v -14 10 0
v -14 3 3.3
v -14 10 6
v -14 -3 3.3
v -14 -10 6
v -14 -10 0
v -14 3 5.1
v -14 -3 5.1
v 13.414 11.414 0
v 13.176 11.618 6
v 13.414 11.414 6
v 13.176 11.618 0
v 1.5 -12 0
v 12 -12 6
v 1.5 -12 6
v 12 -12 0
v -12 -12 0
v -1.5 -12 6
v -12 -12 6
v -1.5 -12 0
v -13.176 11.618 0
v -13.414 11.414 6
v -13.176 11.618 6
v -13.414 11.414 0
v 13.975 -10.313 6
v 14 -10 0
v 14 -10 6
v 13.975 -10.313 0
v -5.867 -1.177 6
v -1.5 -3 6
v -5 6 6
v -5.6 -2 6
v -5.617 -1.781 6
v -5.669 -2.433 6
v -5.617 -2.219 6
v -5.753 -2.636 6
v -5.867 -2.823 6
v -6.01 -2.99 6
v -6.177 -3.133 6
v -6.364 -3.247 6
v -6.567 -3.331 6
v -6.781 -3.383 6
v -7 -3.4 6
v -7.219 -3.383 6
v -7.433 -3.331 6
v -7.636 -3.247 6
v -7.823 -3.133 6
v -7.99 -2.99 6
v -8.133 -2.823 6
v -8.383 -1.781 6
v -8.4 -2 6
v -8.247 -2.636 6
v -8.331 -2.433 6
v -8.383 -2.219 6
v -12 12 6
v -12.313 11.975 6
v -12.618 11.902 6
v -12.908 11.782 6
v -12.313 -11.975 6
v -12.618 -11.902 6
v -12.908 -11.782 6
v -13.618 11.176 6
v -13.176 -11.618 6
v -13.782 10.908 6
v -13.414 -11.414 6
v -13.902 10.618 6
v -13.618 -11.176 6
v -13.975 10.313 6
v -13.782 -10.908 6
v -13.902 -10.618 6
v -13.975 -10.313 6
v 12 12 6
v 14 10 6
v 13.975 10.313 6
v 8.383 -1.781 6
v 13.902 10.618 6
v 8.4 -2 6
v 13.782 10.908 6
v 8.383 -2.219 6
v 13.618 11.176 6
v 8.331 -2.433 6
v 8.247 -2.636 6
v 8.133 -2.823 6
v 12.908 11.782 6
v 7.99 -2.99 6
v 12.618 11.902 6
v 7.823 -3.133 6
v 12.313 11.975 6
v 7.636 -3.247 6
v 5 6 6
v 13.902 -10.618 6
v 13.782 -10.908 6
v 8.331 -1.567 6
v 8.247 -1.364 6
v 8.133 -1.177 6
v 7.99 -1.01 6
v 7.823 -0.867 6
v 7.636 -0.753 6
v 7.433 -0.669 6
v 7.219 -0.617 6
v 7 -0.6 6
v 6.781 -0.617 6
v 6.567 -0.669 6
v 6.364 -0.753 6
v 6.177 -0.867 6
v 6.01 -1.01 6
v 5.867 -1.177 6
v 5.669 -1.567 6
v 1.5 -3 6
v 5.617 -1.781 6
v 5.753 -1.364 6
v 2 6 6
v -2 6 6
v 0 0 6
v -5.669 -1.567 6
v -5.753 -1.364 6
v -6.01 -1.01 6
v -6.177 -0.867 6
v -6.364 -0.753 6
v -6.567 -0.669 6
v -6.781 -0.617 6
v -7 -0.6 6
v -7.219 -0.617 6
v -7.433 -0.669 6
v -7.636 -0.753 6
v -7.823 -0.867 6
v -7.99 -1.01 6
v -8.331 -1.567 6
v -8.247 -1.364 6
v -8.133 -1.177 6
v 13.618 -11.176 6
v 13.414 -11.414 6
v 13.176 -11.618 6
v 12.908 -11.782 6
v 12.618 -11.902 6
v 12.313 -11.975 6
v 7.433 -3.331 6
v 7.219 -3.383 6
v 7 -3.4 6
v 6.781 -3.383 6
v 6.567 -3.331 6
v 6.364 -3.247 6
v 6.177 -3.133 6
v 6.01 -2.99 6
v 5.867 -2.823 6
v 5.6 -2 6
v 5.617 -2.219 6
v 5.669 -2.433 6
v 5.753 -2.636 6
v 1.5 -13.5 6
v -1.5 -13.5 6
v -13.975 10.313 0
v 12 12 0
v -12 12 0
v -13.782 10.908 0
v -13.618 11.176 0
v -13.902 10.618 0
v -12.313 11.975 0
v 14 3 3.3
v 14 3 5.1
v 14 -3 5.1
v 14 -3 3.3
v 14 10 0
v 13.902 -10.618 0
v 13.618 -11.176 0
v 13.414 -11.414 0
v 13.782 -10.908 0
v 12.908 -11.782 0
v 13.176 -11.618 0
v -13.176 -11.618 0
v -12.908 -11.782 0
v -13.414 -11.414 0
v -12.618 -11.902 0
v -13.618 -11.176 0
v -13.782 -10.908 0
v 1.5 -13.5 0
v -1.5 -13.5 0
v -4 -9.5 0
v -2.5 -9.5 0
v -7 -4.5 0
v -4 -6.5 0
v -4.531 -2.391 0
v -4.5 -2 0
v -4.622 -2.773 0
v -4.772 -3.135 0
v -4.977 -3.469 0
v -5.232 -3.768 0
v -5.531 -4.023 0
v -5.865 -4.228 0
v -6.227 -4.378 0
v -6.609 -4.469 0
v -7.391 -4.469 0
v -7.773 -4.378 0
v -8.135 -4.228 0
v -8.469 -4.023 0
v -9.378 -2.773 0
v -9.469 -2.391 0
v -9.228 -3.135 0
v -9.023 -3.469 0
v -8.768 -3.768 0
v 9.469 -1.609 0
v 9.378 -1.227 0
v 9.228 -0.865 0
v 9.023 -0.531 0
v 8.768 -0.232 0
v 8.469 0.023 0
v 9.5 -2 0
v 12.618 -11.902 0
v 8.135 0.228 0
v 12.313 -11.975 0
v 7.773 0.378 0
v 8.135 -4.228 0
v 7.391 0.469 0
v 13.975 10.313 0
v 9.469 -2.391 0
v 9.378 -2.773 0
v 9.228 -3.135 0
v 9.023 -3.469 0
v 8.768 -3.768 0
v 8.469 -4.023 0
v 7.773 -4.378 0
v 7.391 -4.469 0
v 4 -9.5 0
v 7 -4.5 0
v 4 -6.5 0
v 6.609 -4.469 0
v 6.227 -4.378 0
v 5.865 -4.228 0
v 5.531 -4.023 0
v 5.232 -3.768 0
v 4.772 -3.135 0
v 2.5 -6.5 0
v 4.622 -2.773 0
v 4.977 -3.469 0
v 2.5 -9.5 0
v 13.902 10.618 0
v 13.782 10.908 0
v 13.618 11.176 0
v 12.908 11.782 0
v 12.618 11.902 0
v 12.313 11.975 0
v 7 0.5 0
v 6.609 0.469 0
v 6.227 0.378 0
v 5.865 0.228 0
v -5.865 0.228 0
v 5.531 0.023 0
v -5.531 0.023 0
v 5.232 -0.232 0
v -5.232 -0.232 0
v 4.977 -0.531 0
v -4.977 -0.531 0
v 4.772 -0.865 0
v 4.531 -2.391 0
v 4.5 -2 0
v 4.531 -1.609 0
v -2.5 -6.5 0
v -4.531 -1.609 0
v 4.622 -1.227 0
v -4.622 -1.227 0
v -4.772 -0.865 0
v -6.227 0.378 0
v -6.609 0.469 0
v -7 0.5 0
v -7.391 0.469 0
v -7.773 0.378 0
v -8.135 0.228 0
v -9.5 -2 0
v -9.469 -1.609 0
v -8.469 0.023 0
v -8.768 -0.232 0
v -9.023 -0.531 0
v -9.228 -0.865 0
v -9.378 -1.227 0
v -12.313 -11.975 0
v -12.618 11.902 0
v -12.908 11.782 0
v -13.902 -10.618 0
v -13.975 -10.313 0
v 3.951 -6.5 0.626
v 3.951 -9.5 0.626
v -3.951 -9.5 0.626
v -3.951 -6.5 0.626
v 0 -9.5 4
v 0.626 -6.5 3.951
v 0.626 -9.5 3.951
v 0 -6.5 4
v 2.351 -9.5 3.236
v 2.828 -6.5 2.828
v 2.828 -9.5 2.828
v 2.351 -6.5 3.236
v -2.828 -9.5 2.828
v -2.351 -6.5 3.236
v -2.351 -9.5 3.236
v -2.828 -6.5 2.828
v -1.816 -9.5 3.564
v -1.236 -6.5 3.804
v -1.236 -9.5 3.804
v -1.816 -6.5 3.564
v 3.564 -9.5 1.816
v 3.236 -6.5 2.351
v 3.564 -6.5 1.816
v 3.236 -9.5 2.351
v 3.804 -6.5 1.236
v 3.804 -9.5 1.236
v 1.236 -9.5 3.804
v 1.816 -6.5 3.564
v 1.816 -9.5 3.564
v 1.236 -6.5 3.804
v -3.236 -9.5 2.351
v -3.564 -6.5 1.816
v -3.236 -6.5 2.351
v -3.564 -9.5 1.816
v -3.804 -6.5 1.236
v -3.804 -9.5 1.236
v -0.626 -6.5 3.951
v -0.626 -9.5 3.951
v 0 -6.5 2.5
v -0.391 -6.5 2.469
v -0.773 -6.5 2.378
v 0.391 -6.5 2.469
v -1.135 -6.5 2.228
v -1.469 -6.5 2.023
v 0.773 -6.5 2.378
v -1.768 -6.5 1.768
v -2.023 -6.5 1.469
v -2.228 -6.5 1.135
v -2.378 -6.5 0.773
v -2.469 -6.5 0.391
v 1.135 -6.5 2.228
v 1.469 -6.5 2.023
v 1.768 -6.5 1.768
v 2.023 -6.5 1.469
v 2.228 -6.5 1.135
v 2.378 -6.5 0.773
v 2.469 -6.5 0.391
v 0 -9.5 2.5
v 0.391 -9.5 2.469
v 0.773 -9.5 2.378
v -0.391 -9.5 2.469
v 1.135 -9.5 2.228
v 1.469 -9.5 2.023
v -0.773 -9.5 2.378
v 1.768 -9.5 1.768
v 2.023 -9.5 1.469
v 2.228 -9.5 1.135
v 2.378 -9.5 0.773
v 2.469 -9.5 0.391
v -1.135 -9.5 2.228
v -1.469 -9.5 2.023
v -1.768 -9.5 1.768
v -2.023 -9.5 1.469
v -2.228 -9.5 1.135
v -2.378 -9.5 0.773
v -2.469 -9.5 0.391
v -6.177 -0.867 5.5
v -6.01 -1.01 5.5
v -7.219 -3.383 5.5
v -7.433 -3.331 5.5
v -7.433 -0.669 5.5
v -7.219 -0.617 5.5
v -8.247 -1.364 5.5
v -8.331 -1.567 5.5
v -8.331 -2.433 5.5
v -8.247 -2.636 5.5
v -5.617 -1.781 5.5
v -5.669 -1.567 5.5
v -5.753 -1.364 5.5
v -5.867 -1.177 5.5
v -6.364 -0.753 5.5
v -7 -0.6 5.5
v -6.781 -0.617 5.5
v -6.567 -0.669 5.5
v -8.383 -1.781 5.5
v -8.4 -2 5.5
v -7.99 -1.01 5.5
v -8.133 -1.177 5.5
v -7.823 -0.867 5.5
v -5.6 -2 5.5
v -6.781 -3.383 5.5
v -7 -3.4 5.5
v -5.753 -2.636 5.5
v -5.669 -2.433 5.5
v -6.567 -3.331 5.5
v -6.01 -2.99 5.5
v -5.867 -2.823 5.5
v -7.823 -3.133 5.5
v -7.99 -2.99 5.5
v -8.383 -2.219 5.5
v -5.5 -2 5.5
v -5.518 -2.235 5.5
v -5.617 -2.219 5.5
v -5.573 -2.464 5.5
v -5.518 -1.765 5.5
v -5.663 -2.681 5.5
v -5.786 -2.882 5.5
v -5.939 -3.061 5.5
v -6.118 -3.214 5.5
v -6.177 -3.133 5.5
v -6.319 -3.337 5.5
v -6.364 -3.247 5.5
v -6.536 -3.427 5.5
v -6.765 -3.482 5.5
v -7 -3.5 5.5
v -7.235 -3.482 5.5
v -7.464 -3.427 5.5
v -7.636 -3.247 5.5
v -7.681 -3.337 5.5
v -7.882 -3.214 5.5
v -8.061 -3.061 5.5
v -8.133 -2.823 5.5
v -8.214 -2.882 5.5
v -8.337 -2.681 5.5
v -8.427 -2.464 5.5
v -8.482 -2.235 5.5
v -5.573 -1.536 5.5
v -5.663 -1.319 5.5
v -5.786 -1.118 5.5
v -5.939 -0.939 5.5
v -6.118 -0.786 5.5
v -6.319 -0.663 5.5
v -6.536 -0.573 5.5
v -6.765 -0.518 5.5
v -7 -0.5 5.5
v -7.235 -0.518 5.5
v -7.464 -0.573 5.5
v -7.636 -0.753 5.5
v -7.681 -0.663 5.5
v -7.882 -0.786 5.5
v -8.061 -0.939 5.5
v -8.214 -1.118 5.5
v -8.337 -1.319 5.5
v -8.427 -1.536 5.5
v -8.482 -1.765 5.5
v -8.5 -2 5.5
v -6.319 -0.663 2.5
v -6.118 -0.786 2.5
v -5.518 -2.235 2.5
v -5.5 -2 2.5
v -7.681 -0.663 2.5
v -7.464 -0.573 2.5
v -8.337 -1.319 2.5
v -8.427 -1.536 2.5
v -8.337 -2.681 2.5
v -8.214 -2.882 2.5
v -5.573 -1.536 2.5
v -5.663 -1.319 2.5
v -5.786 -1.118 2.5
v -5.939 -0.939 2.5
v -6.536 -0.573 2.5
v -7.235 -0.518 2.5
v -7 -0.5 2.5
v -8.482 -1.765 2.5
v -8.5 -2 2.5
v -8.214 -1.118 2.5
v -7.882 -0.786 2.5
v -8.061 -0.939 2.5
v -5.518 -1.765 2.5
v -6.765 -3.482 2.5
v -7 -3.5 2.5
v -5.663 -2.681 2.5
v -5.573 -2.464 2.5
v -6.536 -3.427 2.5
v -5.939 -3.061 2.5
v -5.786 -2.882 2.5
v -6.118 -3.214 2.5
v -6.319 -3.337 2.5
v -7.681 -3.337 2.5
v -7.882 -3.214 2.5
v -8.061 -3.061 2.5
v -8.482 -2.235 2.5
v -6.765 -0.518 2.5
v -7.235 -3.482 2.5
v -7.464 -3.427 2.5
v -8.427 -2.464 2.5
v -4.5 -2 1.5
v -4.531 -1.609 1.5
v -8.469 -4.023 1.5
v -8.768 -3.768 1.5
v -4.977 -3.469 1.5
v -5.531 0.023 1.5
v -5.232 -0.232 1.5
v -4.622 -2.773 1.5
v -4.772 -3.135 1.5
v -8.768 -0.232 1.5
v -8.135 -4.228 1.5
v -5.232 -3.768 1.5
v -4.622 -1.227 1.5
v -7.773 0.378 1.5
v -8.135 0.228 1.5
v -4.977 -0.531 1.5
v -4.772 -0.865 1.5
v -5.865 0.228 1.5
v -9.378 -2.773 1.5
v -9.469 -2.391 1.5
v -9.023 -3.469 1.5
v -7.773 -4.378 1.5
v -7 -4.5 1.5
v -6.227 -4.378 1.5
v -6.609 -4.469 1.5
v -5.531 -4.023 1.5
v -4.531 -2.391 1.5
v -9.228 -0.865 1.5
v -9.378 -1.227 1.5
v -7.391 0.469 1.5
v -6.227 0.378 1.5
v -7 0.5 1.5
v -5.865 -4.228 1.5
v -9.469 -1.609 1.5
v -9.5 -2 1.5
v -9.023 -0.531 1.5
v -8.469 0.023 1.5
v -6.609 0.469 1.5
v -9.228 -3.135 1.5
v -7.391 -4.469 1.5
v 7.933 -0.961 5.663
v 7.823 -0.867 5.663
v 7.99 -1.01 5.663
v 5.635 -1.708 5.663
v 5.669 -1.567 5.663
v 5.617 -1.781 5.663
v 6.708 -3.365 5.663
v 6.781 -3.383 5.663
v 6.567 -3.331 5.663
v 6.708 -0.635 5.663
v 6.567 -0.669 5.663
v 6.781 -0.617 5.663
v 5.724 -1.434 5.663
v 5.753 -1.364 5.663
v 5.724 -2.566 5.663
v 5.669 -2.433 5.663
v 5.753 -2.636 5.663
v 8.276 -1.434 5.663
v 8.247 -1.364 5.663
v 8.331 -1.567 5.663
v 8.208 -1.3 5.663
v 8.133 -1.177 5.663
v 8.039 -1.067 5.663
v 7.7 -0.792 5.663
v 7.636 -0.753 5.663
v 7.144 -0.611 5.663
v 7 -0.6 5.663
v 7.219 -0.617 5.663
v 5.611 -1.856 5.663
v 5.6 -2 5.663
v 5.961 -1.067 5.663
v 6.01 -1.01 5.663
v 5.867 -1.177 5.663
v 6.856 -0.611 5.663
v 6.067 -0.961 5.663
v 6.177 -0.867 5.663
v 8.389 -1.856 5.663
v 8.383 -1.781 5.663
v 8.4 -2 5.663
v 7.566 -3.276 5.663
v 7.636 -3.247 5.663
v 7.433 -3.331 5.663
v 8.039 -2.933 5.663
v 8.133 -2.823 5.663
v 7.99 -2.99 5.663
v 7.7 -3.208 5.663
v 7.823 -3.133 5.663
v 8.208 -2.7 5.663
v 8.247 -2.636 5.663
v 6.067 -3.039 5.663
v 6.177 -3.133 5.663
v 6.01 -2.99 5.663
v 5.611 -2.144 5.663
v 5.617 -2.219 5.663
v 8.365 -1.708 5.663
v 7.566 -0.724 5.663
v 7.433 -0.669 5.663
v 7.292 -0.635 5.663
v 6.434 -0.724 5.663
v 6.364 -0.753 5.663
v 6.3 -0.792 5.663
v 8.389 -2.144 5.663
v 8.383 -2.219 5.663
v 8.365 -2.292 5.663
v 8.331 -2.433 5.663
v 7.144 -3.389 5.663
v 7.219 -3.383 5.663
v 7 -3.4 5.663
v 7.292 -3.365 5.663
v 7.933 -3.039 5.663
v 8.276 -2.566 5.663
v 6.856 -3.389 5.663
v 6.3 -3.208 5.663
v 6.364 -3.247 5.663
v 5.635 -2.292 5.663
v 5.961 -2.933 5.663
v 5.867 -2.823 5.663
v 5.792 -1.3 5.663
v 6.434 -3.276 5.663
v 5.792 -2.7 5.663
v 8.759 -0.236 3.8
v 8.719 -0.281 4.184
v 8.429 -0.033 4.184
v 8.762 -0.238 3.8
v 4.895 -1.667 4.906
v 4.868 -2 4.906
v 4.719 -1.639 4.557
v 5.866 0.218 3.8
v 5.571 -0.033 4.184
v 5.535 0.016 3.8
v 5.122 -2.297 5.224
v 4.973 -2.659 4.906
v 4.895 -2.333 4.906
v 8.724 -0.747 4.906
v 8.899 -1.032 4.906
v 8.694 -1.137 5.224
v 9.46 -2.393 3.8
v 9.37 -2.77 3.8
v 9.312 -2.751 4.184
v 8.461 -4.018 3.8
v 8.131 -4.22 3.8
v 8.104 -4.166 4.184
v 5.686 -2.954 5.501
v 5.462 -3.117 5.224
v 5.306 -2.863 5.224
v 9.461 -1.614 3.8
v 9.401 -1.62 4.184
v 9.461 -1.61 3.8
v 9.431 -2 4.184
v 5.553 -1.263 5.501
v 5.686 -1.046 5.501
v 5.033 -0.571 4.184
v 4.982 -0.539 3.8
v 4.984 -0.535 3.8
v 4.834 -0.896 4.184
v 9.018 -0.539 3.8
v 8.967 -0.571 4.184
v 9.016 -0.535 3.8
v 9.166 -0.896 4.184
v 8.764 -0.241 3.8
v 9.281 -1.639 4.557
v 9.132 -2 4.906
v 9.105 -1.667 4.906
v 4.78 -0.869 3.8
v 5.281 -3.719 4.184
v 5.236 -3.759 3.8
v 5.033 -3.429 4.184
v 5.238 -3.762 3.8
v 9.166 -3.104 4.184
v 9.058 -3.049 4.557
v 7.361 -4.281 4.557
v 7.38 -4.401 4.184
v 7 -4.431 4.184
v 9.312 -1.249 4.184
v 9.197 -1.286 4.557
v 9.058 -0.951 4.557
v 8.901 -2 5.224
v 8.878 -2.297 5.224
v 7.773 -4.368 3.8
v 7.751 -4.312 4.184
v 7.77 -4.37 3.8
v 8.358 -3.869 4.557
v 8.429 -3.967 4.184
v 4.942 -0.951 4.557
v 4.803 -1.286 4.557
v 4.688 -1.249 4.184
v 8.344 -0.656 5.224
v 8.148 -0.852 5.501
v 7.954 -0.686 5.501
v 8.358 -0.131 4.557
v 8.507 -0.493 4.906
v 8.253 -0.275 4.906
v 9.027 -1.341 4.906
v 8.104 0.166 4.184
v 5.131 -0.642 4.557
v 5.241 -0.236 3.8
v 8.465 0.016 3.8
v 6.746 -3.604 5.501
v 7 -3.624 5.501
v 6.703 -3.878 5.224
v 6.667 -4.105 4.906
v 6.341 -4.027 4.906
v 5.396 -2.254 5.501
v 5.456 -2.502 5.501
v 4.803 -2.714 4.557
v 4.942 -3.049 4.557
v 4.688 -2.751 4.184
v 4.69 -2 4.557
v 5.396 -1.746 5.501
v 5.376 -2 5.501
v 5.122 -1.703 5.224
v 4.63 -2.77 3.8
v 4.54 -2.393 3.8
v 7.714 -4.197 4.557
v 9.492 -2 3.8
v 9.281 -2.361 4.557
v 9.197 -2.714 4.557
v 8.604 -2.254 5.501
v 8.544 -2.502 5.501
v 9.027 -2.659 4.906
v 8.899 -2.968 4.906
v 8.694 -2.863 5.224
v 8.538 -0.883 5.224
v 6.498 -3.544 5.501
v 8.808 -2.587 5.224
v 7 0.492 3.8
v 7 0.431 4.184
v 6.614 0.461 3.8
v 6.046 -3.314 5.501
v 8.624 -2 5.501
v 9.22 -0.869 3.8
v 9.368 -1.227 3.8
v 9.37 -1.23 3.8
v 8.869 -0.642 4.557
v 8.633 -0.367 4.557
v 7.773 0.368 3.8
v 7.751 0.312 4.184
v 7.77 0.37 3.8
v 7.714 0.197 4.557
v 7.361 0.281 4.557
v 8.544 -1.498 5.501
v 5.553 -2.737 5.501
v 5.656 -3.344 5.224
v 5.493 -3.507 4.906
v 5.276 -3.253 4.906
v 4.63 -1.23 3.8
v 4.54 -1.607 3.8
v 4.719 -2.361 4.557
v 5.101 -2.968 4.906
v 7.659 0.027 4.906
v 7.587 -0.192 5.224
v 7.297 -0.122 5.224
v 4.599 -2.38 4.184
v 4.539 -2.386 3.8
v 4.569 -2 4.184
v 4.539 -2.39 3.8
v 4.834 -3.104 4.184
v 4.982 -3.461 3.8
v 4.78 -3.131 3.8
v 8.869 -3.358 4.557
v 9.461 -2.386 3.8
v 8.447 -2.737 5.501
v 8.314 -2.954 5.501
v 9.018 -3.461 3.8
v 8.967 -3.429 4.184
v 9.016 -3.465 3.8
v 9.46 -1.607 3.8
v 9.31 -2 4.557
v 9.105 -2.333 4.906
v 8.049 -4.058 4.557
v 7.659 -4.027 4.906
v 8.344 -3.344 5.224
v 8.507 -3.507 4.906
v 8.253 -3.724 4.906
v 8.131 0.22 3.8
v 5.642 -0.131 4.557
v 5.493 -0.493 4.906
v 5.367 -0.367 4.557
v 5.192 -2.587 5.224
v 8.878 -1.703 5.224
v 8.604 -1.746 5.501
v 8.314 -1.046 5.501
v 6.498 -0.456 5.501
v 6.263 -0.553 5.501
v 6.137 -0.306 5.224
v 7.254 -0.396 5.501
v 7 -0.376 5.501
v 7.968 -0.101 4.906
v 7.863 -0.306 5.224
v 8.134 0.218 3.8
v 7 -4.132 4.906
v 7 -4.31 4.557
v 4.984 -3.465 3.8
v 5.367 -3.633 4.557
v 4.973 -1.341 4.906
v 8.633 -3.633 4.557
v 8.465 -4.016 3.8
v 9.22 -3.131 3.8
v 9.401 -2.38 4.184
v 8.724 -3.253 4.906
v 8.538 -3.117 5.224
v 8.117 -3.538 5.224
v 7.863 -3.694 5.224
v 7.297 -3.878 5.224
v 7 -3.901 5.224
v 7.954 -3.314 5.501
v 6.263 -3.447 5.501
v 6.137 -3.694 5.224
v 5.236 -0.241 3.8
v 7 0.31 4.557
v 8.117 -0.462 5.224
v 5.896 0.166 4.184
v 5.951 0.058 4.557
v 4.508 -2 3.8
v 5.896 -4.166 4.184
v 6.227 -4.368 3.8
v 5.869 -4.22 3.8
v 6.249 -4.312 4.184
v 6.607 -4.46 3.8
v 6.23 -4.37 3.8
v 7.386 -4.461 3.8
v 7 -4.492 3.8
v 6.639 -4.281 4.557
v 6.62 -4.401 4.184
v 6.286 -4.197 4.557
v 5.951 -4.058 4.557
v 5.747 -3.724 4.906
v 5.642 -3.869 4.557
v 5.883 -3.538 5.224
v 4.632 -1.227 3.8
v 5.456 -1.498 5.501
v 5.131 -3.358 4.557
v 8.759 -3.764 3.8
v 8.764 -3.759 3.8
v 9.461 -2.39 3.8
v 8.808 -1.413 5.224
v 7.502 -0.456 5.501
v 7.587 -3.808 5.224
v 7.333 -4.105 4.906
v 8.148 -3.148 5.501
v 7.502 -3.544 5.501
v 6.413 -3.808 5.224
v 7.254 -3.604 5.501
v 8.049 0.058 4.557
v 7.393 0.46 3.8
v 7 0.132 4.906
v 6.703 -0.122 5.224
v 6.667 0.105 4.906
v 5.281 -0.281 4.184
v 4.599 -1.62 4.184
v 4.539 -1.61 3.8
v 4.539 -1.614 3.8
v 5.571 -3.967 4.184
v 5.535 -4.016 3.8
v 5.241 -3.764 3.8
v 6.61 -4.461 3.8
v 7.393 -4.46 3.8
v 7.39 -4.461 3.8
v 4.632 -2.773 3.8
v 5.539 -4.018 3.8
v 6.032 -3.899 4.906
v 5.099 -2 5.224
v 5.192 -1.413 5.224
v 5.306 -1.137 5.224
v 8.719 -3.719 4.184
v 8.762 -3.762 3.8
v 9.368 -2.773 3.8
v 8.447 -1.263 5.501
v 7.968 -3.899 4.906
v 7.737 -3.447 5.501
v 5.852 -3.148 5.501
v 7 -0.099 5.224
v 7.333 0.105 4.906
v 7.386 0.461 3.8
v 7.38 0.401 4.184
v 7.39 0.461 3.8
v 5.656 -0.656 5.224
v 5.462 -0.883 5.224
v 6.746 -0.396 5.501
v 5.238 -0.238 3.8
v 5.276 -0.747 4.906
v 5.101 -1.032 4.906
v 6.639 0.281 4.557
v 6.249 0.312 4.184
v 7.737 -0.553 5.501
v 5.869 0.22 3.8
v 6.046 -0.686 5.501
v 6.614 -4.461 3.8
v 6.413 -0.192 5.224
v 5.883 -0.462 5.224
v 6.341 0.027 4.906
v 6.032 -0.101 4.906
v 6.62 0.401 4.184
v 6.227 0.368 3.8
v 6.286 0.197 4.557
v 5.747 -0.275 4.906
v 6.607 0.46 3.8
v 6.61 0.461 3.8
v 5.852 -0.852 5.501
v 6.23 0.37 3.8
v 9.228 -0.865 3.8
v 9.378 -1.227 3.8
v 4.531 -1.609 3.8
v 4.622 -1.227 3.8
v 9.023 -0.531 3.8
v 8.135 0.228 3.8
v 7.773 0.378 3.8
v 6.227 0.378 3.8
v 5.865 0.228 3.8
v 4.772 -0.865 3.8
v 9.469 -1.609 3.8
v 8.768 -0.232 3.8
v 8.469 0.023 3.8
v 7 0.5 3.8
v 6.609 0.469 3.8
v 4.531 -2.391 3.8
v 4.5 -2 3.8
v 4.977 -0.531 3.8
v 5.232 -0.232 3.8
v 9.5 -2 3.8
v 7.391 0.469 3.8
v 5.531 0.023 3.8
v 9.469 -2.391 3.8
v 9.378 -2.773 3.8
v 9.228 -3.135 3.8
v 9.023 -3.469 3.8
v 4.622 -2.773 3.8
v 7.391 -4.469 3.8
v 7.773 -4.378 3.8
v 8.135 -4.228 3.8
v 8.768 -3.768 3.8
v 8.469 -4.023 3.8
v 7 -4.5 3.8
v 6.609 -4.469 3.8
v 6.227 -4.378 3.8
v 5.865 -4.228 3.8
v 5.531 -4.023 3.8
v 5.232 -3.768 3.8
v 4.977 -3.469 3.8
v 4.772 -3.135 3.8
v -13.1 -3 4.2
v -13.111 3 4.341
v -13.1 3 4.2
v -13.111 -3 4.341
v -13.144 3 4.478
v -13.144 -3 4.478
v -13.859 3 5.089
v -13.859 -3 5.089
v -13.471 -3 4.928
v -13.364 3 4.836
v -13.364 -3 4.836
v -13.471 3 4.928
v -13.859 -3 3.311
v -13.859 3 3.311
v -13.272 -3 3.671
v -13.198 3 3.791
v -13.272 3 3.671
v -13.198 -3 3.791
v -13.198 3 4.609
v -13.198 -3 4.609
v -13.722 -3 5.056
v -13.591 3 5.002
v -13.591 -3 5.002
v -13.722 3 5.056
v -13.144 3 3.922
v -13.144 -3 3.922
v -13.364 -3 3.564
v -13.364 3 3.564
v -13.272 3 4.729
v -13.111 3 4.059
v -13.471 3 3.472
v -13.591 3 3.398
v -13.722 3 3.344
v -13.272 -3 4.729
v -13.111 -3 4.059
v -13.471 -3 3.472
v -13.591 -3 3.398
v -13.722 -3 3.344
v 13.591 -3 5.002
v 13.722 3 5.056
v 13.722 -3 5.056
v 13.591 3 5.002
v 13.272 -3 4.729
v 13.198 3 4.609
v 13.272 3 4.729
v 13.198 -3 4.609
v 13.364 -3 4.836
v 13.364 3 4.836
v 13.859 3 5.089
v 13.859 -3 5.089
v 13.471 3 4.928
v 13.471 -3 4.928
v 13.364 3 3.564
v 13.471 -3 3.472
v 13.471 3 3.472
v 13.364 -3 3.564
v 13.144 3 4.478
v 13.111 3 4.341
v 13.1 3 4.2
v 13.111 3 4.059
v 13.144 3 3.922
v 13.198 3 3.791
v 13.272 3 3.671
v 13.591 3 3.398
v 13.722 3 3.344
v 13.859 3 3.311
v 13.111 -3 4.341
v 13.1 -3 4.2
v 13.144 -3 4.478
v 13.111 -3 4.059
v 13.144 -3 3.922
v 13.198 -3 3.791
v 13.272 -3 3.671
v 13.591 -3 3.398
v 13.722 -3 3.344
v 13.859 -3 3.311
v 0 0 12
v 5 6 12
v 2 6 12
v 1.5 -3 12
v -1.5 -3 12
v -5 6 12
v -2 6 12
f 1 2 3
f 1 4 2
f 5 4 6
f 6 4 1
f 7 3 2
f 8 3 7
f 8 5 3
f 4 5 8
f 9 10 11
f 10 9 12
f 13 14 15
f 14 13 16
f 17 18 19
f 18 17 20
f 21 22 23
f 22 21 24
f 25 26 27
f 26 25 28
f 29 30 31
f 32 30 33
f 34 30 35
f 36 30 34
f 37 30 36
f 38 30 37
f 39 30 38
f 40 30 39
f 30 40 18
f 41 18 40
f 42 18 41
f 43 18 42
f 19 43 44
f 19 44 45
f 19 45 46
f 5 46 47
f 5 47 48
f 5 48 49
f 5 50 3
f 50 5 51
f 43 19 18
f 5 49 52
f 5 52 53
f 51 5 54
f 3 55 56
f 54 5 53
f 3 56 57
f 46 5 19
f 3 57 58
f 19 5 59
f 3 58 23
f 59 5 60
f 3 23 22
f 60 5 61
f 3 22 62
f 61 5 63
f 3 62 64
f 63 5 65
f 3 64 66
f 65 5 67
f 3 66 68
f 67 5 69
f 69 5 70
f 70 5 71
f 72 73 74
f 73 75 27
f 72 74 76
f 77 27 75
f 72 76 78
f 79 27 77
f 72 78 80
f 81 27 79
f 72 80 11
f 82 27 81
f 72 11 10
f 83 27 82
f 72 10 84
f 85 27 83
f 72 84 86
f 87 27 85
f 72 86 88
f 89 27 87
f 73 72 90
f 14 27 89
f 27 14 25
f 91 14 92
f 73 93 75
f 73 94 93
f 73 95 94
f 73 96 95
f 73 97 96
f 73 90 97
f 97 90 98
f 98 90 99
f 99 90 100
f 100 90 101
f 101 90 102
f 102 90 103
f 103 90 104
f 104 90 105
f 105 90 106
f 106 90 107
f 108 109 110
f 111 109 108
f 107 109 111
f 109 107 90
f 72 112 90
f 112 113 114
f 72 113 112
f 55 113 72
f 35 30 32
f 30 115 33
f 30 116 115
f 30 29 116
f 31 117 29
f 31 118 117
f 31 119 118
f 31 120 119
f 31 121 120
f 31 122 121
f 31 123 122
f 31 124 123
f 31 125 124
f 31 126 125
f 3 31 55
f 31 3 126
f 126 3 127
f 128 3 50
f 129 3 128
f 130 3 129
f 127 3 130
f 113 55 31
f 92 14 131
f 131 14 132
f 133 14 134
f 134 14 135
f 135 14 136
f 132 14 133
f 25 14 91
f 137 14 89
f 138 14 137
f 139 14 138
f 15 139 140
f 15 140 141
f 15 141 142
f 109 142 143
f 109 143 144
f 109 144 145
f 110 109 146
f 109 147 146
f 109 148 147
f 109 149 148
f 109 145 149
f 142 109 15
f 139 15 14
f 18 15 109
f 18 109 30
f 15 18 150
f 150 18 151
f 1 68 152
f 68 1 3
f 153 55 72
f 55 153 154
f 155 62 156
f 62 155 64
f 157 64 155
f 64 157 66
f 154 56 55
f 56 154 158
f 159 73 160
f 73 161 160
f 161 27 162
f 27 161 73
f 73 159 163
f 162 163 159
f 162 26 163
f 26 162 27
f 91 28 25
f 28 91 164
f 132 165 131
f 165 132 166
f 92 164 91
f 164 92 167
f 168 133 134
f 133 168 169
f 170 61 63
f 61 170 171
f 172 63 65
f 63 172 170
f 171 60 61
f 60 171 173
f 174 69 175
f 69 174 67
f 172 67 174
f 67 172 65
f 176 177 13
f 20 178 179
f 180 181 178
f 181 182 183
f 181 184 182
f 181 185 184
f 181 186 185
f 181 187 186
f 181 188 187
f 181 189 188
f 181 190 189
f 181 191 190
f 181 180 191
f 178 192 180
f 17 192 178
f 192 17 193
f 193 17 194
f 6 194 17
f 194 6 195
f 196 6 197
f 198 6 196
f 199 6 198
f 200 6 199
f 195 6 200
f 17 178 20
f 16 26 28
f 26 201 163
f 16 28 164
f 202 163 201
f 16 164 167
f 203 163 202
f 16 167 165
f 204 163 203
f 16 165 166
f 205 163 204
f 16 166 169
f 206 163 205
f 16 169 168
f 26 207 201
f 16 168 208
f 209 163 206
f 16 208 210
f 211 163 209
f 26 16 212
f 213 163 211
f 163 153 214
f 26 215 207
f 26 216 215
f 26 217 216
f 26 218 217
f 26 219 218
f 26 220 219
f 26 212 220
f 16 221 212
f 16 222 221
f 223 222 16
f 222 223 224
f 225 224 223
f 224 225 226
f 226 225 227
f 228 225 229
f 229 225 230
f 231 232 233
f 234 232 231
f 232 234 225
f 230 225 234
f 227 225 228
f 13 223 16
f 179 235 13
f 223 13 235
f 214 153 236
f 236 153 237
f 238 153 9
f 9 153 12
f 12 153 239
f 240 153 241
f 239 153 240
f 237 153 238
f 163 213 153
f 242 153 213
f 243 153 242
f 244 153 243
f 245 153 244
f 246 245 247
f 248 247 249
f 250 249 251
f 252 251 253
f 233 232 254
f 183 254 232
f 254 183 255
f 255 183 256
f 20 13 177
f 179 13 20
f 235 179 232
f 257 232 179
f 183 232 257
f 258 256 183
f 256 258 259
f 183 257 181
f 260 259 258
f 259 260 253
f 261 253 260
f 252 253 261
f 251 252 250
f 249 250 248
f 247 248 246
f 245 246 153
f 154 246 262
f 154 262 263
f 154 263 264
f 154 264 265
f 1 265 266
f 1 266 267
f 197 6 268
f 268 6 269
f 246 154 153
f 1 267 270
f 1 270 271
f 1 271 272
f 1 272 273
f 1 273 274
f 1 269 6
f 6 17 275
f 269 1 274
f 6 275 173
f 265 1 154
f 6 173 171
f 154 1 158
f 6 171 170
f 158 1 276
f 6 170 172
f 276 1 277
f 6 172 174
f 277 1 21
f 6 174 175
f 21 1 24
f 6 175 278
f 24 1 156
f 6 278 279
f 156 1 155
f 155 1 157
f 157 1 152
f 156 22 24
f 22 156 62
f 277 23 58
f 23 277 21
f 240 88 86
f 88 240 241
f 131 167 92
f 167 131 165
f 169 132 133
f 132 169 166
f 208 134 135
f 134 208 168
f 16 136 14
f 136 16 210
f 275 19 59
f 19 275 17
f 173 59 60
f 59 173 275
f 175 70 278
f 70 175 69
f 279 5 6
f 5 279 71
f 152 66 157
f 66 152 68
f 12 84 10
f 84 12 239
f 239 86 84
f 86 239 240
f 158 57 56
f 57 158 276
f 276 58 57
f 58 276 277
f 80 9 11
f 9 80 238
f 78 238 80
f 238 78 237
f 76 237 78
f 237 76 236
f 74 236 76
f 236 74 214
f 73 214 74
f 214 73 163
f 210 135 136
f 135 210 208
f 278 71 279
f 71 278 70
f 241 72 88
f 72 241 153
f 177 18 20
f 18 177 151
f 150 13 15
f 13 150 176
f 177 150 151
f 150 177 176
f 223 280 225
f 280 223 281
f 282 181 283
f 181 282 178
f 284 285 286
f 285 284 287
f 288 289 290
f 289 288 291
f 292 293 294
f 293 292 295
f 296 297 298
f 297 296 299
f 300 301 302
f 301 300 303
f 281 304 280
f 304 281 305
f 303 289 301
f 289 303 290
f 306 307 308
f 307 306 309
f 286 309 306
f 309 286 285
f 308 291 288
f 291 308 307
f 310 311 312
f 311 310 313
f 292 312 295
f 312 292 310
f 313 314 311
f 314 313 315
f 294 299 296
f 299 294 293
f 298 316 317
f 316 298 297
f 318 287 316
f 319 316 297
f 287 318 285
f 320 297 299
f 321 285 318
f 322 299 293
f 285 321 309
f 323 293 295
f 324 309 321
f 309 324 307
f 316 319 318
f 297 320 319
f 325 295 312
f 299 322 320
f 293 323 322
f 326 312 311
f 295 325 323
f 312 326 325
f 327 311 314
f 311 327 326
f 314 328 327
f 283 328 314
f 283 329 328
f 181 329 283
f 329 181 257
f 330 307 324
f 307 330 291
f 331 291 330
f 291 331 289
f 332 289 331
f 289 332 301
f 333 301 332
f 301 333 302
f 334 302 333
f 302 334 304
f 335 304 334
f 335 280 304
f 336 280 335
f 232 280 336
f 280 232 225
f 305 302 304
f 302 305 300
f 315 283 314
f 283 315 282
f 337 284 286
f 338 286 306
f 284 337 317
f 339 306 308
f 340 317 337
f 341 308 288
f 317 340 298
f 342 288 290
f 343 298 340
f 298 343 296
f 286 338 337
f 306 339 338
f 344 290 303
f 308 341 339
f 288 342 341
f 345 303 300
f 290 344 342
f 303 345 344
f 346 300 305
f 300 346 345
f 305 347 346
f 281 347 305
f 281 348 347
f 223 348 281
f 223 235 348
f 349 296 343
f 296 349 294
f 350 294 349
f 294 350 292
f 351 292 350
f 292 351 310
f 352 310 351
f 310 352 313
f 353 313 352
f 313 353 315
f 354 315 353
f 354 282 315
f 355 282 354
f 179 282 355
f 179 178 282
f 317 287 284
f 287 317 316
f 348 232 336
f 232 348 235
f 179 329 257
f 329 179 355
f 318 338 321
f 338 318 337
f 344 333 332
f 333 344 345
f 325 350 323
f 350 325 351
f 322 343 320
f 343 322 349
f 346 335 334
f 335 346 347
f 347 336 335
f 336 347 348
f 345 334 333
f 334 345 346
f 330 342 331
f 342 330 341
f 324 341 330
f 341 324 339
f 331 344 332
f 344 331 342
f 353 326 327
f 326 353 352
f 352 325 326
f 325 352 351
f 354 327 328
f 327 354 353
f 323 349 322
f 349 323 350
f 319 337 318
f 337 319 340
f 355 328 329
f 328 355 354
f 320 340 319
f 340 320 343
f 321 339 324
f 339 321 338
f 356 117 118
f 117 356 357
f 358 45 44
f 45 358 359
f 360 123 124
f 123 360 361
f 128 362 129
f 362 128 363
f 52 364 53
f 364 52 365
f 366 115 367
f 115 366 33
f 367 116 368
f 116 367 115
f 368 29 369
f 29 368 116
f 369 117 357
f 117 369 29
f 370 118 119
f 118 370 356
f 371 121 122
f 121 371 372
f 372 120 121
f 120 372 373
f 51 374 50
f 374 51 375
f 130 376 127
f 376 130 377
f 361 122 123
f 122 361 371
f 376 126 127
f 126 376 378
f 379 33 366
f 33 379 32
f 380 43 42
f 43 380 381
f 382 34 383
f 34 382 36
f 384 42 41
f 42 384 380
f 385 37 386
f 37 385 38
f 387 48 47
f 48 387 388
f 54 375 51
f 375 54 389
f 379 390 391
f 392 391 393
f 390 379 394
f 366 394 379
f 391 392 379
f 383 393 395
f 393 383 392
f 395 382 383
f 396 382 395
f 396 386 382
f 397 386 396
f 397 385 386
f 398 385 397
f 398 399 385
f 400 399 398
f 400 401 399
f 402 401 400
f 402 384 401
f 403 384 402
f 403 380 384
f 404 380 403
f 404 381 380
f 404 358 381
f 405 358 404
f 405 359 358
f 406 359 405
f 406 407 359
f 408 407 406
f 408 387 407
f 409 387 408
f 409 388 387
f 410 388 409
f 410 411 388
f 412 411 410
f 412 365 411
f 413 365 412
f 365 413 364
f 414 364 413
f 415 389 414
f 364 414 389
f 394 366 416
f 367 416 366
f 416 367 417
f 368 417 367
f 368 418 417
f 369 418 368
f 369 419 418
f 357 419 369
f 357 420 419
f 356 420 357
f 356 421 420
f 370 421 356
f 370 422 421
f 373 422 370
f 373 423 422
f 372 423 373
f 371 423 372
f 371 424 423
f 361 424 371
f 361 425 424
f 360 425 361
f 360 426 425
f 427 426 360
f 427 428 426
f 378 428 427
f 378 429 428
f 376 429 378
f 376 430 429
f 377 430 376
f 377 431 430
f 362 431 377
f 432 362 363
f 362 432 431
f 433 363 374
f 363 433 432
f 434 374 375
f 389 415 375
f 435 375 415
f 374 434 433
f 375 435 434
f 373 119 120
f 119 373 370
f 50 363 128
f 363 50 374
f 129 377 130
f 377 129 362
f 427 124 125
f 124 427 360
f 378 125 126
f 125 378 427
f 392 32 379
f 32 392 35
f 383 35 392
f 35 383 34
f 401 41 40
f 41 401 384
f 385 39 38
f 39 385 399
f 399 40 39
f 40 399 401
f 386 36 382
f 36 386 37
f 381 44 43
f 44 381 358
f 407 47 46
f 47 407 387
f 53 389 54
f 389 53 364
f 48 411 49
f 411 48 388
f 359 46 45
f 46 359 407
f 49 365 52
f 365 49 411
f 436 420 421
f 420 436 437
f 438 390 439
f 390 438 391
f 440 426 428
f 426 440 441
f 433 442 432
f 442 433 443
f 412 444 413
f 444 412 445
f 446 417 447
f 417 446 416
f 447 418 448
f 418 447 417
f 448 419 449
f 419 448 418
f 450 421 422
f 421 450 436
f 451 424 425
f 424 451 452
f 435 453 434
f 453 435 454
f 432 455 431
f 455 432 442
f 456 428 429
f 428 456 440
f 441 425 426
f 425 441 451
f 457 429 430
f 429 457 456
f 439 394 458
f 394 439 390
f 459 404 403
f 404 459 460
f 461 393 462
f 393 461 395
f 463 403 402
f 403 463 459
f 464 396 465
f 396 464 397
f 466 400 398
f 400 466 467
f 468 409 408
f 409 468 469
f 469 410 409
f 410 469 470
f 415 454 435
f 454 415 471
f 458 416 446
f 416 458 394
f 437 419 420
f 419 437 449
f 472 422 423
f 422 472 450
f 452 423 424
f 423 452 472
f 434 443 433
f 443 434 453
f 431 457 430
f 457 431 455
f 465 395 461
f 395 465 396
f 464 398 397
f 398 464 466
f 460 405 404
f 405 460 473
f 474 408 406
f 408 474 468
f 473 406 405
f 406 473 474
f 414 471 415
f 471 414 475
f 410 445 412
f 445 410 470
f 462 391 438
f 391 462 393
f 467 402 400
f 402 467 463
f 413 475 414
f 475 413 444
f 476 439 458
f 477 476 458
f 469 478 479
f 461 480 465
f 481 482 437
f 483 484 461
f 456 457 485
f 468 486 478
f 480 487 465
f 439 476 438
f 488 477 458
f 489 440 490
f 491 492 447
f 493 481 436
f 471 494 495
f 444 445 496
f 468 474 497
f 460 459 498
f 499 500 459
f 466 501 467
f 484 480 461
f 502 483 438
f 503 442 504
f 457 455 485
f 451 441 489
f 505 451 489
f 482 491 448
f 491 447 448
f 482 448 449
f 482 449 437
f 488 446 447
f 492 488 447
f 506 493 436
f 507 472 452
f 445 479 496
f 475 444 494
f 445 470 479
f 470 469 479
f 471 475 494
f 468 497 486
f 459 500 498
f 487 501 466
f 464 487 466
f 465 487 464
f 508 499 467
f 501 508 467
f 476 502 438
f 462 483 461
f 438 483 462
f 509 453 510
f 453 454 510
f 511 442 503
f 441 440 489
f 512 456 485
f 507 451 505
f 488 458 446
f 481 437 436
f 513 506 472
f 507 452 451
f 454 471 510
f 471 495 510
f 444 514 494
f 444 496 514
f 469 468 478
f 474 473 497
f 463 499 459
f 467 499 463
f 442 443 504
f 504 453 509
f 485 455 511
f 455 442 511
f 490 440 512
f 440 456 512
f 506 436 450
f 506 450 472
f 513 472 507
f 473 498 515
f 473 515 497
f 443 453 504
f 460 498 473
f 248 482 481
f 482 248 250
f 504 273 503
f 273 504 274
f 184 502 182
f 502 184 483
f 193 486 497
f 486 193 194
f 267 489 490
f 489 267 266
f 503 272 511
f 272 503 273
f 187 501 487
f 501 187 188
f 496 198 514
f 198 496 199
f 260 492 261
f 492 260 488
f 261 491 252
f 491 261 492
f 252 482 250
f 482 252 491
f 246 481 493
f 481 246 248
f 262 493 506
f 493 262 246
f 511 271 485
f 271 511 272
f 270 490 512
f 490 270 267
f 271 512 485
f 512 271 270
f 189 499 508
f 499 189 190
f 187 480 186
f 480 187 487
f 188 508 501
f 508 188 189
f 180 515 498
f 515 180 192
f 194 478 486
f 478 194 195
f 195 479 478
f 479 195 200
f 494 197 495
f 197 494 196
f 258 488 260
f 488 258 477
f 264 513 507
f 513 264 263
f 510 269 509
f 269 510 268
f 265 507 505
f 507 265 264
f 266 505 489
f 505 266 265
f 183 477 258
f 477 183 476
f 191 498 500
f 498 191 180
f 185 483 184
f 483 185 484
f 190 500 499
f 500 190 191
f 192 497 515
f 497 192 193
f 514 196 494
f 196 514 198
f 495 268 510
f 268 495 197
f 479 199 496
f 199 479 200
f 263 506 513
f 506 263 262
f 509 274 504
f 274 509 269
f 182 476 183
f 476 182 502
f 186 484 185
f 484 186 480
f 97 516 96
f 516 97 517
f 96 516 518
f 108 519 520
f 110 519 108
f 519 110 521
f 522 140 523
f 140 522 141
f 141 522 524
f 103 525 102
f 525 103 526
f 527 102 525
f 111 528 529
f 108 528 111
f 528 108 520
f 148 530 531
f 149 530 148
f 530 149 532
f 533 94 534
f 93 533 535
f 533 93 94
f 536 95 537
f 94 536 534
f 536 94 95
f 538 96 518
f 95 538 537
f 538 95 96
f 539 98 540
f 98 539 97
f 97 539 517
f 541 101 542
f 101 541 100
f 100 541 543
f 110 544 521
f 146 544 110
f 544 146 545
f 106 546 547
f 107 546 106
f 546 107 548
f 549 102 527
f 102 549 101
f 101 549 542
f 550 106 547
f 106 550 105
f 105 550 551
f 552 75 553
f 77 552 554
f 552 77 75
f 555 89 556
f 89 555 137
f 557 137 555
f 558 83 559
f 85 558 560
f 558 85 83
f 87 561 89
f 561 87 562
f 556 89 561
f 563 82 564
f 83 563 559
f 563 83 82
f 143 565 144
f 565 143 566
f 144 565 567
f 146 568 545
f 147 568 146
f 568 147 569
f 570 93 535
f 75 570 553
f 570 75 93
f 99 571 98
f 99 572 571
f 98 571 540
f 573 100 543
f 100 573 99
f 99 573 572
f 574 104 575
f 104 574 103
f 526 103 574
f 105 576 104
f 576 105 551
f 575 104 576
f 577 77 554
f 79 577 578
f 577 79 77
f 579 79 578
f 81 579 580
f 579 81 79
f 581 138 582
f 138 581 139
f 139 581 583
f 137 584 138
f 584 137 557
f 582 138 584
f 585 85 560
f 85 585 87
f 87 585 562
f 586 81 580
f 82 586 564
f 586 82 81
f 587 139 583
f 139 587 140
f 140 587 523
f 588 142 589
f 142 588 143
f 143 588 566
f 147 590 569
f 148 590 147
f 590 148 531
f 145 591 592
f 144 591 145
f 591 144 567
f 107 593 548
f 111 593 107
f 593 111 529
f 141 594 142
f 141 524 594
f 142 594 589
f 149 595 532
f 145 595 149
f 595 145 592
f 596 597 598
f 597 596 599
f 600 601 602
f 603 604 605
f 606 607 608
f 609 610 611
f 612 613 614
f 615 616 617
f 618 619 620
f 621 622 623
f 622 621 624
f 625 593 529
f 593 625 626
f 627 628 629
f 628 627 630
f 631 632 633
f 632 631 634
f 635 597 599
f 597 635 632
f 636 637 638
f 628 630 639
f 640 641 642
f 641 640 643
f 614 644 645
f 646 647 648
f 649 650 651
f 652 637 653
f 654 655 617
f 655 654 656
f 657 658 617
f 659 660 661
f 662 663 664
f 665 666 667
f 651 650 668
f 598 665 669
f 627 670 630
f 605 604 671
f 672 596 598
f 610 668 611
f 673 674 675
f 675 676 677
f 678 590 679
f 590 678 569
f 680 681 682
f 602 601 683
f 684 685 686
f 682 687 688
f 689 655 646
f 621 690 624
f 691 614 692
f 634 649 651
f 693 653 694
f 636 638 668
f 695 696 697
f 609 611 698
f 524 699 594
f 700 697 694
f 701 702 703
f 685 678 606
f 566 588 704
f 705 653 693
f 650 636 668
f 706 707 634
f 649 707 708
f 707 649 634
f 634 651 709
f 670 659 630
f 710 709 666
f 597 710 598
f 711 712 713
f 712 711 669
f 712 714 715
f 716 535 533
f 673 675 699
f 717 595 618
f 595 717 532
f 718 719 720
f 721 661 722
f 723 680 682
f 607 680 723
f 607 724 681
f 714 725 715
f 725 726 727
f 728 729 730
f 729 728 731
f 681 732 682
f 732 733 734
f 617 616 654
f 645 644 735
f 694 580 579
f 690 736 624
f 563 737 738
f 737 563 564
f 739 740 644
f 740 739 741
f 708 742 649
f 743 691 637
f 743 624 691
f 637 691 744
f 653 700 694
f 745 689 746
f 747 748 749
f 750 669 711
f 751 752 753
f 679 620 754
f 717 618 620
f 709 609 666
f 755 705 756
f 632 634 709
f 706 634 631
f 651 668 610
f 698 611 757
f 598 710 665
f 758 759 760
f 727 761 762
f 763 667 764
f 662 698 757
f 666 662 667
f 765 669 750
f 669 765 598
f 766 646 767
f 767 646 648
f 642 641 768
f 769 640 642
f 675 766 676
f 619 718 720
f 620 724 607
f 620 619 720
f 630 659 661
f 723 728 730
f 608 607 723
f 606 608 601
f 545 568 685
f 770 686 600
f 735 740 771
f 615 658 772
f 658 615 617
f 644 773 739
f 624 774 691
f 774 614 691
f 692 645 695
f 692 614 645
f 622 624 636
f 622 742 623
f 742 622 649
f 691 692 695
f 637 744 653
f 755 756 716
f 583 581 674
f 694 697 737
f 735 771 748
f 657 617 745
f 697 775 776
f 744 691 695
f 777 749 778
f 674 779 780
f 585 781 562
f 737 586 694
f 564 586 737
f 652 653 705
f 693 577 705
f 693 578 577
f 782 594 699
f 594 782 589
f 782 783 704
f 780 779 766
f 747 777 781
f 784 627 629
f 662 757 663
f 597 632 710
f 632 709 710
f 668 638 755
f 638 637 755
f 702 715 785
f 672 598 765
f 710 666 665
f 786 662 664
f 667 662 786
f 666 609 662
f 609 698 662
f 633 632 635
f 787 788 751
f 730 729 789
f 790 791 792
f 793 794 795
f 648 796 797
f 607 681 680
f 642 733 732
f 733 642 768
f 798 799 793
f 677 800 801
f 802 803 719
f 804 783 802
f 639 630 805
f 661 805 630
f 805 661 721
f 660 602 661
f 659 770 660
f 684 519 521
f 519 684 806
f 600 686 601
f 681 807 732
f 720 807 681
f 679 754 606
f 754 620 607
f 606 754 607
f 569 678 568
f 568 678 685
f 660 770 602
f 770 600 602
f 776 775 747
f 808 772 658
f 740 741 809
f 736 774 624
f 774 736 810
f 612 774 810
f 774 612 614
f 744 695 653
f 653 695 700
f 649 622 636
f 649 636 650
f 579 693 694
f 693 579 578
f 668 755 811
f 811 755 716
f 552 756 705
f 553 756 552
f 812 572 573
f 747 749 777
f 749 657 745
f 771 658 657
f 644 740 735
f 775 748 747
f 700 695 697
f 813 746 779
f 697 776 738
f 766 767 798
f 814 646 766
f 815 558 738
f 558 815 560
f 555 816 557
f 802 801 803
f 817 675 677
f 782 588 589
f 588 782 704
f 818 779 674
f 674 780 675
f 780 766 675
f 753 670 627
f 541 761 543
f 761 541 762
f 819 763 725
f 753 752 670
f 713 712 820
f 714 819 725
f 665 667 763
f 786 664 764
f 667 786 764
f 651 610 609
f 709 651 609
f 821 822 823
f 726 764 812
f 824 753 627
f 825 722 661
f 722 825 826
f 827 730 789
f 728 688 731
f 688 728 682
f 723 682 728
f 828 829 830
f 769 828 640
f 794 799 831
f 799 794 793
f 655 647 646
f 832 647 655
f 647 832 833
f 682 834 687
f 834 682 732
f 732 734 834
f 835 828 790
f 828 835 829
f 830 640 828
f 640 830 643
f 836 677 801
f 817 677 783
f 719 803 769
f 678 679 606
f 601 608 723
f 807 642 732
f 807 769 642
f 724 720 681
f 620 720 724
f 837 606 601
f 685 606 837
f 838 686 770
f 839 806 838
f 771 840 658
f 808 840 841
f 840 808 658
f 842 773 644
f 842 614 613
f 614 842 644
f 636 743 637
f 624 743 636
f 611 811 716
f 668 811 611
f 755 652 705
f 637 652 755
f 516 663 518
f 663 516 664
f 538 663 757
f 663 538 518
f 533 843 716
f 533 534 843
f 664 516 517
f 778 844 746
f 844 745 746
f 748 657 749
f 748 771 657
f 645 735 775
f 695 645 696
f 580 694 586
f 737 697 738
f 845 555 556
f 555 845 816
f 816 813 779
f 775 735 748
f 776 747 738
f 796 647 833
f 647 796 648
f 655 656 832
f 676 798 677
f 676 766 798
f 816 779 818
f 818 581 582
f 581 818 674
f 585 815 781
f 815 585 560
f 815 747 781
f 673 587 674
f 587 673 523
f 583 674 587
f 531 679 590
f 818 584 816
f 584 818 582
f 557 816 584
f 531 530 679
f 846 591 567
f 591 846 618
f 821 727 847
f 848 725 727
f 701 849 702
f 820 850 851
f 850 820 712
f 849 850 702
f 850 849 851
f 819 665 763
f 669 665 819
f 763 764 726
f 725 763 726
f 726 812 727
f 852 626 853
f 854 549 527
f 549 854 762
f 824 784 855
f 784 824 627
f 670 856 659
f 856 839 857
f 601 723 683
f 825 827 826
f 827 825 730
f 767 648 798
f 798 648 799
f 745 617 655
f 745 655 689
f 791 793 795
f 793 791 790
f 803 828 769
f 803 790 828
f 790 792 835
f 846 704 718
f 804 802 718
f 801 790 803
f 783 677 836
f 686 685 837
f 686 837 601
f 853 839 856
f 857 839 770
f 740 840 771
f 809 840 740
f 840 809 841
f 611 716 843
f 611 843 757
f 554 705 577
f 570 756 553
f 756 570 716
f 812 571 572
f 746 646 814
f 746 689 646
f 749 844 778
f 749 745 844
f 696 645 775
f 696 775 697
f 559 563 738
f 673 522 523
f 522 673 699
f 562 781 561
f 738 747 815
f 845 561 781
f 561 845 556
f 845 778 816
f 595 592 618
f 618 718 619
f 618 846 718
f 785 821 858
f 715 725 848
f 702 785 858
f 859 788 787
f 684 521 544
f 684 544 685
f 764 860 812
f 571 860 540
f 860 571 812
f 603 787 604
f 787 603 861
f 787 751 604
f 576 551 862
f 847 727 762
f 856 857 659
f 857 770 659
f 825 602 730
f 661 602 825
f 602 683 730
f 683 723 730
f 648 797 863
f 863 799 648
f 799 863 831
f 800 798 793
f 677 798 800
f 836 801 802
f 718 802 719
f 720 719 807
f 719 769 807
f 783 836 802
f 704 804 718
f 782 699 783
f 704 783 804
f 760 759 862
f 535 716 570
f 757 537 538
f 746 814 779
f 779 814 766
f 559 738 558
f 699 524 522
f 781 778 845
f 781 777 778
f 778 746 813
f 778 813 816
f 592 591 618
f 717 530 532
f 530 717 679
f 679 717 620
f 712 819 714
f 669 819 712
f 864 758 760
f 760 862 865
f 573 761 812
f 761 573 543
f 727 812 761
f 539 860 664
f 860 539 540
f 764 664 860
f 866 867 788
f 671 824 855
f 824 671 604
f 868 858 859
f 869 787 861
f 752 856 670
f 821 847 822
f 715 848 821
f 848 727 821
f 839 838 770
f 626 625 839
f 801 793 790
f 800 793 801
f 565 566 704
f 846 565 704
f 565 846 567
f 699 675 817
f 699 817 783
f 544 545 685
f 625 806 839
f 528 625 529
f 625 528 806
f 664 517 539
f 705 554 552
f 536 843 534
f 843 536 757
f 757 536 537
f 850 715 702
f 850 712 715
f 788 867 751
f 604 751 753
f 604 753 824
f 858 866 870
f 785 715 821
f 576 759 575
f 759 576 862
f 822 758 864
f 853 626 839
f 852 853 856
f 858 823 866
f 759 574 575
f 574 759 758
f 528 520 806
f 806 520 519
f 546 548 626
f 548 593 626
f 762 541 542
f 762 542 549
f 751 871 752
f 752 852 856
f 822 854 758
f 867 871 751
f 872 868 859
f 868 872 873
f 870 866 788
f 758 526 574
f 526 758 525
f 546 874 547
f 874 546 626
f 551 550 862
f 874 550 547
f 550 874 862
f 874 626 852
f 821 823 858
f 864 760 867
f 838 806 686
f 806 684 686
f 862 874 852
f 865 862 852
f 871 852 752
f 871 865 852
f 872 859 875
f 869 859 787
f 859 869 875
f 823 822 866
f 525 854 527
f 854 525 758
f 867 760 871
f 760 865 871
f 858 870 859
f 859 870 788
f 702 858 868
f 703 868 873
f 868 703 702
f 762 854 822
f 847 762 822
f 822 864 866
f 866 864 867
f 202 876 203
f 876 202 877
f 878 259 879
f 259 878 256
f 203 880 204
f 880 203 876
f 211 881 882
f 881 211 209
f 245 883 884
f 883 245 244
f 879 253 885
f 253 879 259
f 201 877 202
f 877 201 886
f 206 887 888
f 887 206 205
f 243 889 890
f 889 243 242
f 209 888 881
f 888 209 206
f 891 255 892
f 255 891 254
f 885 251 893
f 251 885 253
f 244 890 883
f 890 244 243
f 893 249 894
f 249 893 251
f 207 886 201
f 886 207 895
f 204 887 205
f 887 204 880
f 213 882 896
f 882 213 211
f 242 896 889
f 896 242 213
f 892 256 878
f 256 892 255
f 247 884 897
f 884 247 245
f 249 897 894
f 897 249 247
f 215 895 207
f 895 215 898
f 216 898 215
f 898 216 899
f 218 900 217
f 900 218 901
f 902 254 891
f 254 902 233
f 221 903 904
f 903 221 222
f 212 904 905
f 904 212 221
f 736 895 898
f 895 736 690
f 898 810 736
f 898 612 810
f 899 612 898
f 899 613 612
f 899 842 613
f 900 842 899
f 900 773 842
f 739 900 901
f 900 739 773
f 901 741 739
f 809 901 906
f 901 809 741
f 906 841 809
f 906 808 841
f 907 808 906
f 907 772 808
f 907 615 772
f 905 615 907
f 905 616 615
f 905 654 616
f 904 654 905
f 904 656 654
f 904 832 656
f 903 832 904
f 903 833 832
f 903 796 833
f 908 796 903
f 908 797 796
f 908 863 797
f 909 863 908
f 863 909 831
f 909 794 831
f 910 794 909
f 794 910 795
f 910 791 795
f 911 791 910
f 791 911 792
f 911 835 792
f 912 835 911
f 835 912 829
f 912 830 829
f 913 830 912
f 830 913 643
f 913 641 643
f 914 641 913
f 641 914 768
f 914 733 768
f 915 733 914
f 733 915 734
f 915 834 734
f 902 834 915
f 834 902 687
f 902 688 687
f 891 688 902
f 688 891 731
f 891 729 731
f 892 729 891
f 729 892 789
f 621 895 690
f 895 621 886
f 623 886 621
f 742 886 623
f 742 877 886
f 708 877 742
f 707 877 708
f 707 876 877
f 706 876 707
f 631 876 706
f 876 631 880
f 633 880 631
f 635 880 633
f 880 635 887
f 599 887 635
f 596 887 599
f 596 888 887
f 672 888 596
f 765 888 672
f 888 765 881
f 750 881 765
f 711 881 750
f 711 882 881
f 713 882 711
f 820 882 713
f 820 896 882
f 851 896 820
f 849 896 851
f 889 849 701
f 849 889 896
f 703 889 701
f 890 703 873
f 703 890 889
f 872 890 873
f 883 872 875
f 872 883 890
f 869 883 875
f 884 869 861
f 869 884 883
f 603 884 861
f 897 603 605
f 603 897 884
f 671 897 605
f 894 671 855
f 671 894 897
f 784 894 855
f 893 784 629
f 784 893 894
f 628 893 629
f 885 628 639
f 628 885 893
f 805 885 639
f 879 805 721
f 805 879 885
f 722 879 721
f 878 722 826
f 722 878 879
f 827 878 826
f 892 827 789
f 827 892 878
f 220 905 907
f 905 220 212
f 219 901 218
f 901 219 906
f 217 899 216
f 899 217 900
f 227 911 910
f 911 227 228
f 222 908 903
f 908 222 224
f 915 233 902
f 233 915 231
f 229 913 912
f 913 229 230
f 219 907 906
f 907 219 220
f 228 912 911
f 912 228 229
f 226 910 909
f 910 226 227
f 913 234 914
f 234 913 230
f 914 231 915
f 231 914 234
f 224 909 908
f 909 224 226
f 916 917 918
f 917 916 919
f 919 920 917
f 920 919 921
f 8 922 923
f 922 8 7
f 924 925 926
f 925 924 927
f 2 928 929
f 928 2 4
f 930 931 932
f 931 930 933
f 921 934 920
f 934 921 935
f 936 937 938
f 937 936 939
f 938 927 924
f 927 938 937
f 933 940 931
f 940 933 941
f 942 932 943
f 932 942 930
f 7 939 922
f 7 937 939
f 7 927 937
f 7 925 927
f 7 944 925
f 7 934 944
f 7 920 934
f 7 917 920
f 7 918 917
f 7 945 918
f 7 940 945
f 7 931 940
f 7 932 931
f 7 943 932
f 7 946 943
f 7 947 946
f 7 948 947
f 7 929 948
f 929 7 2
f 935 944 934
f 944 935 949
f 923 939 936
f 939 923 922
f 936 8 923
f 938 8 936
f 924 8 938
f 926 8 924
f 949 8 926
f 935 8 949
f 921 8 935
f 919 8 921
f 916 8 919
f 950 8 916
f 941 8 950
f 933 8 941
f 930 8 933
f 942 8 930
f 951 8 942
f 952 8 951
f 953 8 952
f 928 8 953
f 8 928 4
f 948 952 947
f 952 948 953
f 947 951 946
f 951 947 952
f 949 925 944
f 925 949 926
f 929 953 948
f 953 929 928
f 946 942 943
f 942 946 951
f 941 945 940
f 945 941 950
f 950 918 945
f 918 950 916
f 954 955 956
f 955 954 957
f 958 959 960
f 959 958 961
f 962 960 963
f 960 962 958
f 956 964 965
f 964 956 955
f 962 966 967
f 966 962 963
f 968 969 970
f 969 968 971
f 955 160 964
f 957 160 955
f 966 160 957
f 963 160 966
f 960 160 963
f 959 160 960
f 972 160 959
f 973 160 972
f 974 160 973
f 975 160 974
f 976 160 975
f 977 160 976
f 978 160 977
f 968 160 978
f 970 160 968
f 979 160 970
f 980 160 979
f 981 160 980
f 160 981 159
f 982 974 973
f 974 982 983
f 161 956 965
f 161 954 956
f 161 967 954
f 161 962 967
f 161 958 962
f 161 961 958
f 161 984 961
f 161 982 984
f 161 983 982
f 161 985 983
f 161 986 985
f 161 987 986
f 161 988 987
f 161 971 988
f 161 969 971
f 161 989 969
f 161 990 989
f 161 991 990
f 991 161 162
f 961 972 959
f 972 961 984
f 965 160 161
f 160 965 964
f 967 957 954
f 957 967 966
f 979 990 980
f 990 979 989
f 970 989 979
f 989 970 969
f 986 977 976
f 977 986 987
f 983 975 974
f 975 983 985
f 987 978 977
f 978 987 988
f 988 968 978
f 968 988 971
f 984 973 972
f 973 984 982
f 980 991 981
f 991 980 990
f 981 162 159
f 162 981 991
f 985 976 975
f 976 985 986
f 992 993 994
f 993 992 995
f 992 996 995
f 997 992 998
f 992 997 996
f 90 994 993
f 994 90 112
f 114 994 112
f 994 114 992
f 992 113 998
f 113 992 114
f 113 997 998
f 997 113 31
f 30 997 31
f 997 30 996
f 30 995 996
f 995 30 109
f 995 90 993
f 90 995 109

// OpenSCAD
$fn=40;

translate ([0,0,6])
linear_extrude(height=6) {
    polygon([[-1.5,-3],[1.5,-3],[5,6],[2,6],[0,0],[-2,6],[-5,6]]);
}

difference() {
    union () {
        hull () {
            translate ([-12,-10,0])
                cylinder(h=6, r=2);
            translate ([-12,10,0])
                cylinder(h=6, r=2);
            translate ([12,10,0])
                cylinder(h=6, r=2);
            translate ([12,-10,0])
                cylinder(h=6, r=2);
            }
        translate ([-1.5,-13.5,0])
            cube ([3,1.6,6]);
    }
      
    translate ([-7,-2,5.5])
        cylinder(d=2.8, h=.5); 
    translate ([-7,-2,2.5])
        cylinder(d=3, h=3);
    translate ([-7,-2,1.5])
        cylinder(d1=5, d2=3, h=1);
    translate ([-7,-2,0])
        cylinder(d=5, h=1.5);   
    
    translate ([7,-2,5])
        cylinder(d=2.8, h=1);
    translate ([7,-2,3.6])
        sphere(d=5);
    translate ([7,-2,0])
        cylinder(d=5, h=3.8); 

    translate([0,-6.5,0])
        rotate([90,0,0])
            difference() {
                cylinder(h=3, d=8);
                cylinder(h=3, d=5);
            }
    
    translate([-14,0,4.2])
        rotate([90,0,0])
            cylinder(h=6, d=1.8, center=true);
    
    translate([14,0,4.2])
        rotate([90,0,0])
            cylinder(h=6, d=1.8, center=true);
}
